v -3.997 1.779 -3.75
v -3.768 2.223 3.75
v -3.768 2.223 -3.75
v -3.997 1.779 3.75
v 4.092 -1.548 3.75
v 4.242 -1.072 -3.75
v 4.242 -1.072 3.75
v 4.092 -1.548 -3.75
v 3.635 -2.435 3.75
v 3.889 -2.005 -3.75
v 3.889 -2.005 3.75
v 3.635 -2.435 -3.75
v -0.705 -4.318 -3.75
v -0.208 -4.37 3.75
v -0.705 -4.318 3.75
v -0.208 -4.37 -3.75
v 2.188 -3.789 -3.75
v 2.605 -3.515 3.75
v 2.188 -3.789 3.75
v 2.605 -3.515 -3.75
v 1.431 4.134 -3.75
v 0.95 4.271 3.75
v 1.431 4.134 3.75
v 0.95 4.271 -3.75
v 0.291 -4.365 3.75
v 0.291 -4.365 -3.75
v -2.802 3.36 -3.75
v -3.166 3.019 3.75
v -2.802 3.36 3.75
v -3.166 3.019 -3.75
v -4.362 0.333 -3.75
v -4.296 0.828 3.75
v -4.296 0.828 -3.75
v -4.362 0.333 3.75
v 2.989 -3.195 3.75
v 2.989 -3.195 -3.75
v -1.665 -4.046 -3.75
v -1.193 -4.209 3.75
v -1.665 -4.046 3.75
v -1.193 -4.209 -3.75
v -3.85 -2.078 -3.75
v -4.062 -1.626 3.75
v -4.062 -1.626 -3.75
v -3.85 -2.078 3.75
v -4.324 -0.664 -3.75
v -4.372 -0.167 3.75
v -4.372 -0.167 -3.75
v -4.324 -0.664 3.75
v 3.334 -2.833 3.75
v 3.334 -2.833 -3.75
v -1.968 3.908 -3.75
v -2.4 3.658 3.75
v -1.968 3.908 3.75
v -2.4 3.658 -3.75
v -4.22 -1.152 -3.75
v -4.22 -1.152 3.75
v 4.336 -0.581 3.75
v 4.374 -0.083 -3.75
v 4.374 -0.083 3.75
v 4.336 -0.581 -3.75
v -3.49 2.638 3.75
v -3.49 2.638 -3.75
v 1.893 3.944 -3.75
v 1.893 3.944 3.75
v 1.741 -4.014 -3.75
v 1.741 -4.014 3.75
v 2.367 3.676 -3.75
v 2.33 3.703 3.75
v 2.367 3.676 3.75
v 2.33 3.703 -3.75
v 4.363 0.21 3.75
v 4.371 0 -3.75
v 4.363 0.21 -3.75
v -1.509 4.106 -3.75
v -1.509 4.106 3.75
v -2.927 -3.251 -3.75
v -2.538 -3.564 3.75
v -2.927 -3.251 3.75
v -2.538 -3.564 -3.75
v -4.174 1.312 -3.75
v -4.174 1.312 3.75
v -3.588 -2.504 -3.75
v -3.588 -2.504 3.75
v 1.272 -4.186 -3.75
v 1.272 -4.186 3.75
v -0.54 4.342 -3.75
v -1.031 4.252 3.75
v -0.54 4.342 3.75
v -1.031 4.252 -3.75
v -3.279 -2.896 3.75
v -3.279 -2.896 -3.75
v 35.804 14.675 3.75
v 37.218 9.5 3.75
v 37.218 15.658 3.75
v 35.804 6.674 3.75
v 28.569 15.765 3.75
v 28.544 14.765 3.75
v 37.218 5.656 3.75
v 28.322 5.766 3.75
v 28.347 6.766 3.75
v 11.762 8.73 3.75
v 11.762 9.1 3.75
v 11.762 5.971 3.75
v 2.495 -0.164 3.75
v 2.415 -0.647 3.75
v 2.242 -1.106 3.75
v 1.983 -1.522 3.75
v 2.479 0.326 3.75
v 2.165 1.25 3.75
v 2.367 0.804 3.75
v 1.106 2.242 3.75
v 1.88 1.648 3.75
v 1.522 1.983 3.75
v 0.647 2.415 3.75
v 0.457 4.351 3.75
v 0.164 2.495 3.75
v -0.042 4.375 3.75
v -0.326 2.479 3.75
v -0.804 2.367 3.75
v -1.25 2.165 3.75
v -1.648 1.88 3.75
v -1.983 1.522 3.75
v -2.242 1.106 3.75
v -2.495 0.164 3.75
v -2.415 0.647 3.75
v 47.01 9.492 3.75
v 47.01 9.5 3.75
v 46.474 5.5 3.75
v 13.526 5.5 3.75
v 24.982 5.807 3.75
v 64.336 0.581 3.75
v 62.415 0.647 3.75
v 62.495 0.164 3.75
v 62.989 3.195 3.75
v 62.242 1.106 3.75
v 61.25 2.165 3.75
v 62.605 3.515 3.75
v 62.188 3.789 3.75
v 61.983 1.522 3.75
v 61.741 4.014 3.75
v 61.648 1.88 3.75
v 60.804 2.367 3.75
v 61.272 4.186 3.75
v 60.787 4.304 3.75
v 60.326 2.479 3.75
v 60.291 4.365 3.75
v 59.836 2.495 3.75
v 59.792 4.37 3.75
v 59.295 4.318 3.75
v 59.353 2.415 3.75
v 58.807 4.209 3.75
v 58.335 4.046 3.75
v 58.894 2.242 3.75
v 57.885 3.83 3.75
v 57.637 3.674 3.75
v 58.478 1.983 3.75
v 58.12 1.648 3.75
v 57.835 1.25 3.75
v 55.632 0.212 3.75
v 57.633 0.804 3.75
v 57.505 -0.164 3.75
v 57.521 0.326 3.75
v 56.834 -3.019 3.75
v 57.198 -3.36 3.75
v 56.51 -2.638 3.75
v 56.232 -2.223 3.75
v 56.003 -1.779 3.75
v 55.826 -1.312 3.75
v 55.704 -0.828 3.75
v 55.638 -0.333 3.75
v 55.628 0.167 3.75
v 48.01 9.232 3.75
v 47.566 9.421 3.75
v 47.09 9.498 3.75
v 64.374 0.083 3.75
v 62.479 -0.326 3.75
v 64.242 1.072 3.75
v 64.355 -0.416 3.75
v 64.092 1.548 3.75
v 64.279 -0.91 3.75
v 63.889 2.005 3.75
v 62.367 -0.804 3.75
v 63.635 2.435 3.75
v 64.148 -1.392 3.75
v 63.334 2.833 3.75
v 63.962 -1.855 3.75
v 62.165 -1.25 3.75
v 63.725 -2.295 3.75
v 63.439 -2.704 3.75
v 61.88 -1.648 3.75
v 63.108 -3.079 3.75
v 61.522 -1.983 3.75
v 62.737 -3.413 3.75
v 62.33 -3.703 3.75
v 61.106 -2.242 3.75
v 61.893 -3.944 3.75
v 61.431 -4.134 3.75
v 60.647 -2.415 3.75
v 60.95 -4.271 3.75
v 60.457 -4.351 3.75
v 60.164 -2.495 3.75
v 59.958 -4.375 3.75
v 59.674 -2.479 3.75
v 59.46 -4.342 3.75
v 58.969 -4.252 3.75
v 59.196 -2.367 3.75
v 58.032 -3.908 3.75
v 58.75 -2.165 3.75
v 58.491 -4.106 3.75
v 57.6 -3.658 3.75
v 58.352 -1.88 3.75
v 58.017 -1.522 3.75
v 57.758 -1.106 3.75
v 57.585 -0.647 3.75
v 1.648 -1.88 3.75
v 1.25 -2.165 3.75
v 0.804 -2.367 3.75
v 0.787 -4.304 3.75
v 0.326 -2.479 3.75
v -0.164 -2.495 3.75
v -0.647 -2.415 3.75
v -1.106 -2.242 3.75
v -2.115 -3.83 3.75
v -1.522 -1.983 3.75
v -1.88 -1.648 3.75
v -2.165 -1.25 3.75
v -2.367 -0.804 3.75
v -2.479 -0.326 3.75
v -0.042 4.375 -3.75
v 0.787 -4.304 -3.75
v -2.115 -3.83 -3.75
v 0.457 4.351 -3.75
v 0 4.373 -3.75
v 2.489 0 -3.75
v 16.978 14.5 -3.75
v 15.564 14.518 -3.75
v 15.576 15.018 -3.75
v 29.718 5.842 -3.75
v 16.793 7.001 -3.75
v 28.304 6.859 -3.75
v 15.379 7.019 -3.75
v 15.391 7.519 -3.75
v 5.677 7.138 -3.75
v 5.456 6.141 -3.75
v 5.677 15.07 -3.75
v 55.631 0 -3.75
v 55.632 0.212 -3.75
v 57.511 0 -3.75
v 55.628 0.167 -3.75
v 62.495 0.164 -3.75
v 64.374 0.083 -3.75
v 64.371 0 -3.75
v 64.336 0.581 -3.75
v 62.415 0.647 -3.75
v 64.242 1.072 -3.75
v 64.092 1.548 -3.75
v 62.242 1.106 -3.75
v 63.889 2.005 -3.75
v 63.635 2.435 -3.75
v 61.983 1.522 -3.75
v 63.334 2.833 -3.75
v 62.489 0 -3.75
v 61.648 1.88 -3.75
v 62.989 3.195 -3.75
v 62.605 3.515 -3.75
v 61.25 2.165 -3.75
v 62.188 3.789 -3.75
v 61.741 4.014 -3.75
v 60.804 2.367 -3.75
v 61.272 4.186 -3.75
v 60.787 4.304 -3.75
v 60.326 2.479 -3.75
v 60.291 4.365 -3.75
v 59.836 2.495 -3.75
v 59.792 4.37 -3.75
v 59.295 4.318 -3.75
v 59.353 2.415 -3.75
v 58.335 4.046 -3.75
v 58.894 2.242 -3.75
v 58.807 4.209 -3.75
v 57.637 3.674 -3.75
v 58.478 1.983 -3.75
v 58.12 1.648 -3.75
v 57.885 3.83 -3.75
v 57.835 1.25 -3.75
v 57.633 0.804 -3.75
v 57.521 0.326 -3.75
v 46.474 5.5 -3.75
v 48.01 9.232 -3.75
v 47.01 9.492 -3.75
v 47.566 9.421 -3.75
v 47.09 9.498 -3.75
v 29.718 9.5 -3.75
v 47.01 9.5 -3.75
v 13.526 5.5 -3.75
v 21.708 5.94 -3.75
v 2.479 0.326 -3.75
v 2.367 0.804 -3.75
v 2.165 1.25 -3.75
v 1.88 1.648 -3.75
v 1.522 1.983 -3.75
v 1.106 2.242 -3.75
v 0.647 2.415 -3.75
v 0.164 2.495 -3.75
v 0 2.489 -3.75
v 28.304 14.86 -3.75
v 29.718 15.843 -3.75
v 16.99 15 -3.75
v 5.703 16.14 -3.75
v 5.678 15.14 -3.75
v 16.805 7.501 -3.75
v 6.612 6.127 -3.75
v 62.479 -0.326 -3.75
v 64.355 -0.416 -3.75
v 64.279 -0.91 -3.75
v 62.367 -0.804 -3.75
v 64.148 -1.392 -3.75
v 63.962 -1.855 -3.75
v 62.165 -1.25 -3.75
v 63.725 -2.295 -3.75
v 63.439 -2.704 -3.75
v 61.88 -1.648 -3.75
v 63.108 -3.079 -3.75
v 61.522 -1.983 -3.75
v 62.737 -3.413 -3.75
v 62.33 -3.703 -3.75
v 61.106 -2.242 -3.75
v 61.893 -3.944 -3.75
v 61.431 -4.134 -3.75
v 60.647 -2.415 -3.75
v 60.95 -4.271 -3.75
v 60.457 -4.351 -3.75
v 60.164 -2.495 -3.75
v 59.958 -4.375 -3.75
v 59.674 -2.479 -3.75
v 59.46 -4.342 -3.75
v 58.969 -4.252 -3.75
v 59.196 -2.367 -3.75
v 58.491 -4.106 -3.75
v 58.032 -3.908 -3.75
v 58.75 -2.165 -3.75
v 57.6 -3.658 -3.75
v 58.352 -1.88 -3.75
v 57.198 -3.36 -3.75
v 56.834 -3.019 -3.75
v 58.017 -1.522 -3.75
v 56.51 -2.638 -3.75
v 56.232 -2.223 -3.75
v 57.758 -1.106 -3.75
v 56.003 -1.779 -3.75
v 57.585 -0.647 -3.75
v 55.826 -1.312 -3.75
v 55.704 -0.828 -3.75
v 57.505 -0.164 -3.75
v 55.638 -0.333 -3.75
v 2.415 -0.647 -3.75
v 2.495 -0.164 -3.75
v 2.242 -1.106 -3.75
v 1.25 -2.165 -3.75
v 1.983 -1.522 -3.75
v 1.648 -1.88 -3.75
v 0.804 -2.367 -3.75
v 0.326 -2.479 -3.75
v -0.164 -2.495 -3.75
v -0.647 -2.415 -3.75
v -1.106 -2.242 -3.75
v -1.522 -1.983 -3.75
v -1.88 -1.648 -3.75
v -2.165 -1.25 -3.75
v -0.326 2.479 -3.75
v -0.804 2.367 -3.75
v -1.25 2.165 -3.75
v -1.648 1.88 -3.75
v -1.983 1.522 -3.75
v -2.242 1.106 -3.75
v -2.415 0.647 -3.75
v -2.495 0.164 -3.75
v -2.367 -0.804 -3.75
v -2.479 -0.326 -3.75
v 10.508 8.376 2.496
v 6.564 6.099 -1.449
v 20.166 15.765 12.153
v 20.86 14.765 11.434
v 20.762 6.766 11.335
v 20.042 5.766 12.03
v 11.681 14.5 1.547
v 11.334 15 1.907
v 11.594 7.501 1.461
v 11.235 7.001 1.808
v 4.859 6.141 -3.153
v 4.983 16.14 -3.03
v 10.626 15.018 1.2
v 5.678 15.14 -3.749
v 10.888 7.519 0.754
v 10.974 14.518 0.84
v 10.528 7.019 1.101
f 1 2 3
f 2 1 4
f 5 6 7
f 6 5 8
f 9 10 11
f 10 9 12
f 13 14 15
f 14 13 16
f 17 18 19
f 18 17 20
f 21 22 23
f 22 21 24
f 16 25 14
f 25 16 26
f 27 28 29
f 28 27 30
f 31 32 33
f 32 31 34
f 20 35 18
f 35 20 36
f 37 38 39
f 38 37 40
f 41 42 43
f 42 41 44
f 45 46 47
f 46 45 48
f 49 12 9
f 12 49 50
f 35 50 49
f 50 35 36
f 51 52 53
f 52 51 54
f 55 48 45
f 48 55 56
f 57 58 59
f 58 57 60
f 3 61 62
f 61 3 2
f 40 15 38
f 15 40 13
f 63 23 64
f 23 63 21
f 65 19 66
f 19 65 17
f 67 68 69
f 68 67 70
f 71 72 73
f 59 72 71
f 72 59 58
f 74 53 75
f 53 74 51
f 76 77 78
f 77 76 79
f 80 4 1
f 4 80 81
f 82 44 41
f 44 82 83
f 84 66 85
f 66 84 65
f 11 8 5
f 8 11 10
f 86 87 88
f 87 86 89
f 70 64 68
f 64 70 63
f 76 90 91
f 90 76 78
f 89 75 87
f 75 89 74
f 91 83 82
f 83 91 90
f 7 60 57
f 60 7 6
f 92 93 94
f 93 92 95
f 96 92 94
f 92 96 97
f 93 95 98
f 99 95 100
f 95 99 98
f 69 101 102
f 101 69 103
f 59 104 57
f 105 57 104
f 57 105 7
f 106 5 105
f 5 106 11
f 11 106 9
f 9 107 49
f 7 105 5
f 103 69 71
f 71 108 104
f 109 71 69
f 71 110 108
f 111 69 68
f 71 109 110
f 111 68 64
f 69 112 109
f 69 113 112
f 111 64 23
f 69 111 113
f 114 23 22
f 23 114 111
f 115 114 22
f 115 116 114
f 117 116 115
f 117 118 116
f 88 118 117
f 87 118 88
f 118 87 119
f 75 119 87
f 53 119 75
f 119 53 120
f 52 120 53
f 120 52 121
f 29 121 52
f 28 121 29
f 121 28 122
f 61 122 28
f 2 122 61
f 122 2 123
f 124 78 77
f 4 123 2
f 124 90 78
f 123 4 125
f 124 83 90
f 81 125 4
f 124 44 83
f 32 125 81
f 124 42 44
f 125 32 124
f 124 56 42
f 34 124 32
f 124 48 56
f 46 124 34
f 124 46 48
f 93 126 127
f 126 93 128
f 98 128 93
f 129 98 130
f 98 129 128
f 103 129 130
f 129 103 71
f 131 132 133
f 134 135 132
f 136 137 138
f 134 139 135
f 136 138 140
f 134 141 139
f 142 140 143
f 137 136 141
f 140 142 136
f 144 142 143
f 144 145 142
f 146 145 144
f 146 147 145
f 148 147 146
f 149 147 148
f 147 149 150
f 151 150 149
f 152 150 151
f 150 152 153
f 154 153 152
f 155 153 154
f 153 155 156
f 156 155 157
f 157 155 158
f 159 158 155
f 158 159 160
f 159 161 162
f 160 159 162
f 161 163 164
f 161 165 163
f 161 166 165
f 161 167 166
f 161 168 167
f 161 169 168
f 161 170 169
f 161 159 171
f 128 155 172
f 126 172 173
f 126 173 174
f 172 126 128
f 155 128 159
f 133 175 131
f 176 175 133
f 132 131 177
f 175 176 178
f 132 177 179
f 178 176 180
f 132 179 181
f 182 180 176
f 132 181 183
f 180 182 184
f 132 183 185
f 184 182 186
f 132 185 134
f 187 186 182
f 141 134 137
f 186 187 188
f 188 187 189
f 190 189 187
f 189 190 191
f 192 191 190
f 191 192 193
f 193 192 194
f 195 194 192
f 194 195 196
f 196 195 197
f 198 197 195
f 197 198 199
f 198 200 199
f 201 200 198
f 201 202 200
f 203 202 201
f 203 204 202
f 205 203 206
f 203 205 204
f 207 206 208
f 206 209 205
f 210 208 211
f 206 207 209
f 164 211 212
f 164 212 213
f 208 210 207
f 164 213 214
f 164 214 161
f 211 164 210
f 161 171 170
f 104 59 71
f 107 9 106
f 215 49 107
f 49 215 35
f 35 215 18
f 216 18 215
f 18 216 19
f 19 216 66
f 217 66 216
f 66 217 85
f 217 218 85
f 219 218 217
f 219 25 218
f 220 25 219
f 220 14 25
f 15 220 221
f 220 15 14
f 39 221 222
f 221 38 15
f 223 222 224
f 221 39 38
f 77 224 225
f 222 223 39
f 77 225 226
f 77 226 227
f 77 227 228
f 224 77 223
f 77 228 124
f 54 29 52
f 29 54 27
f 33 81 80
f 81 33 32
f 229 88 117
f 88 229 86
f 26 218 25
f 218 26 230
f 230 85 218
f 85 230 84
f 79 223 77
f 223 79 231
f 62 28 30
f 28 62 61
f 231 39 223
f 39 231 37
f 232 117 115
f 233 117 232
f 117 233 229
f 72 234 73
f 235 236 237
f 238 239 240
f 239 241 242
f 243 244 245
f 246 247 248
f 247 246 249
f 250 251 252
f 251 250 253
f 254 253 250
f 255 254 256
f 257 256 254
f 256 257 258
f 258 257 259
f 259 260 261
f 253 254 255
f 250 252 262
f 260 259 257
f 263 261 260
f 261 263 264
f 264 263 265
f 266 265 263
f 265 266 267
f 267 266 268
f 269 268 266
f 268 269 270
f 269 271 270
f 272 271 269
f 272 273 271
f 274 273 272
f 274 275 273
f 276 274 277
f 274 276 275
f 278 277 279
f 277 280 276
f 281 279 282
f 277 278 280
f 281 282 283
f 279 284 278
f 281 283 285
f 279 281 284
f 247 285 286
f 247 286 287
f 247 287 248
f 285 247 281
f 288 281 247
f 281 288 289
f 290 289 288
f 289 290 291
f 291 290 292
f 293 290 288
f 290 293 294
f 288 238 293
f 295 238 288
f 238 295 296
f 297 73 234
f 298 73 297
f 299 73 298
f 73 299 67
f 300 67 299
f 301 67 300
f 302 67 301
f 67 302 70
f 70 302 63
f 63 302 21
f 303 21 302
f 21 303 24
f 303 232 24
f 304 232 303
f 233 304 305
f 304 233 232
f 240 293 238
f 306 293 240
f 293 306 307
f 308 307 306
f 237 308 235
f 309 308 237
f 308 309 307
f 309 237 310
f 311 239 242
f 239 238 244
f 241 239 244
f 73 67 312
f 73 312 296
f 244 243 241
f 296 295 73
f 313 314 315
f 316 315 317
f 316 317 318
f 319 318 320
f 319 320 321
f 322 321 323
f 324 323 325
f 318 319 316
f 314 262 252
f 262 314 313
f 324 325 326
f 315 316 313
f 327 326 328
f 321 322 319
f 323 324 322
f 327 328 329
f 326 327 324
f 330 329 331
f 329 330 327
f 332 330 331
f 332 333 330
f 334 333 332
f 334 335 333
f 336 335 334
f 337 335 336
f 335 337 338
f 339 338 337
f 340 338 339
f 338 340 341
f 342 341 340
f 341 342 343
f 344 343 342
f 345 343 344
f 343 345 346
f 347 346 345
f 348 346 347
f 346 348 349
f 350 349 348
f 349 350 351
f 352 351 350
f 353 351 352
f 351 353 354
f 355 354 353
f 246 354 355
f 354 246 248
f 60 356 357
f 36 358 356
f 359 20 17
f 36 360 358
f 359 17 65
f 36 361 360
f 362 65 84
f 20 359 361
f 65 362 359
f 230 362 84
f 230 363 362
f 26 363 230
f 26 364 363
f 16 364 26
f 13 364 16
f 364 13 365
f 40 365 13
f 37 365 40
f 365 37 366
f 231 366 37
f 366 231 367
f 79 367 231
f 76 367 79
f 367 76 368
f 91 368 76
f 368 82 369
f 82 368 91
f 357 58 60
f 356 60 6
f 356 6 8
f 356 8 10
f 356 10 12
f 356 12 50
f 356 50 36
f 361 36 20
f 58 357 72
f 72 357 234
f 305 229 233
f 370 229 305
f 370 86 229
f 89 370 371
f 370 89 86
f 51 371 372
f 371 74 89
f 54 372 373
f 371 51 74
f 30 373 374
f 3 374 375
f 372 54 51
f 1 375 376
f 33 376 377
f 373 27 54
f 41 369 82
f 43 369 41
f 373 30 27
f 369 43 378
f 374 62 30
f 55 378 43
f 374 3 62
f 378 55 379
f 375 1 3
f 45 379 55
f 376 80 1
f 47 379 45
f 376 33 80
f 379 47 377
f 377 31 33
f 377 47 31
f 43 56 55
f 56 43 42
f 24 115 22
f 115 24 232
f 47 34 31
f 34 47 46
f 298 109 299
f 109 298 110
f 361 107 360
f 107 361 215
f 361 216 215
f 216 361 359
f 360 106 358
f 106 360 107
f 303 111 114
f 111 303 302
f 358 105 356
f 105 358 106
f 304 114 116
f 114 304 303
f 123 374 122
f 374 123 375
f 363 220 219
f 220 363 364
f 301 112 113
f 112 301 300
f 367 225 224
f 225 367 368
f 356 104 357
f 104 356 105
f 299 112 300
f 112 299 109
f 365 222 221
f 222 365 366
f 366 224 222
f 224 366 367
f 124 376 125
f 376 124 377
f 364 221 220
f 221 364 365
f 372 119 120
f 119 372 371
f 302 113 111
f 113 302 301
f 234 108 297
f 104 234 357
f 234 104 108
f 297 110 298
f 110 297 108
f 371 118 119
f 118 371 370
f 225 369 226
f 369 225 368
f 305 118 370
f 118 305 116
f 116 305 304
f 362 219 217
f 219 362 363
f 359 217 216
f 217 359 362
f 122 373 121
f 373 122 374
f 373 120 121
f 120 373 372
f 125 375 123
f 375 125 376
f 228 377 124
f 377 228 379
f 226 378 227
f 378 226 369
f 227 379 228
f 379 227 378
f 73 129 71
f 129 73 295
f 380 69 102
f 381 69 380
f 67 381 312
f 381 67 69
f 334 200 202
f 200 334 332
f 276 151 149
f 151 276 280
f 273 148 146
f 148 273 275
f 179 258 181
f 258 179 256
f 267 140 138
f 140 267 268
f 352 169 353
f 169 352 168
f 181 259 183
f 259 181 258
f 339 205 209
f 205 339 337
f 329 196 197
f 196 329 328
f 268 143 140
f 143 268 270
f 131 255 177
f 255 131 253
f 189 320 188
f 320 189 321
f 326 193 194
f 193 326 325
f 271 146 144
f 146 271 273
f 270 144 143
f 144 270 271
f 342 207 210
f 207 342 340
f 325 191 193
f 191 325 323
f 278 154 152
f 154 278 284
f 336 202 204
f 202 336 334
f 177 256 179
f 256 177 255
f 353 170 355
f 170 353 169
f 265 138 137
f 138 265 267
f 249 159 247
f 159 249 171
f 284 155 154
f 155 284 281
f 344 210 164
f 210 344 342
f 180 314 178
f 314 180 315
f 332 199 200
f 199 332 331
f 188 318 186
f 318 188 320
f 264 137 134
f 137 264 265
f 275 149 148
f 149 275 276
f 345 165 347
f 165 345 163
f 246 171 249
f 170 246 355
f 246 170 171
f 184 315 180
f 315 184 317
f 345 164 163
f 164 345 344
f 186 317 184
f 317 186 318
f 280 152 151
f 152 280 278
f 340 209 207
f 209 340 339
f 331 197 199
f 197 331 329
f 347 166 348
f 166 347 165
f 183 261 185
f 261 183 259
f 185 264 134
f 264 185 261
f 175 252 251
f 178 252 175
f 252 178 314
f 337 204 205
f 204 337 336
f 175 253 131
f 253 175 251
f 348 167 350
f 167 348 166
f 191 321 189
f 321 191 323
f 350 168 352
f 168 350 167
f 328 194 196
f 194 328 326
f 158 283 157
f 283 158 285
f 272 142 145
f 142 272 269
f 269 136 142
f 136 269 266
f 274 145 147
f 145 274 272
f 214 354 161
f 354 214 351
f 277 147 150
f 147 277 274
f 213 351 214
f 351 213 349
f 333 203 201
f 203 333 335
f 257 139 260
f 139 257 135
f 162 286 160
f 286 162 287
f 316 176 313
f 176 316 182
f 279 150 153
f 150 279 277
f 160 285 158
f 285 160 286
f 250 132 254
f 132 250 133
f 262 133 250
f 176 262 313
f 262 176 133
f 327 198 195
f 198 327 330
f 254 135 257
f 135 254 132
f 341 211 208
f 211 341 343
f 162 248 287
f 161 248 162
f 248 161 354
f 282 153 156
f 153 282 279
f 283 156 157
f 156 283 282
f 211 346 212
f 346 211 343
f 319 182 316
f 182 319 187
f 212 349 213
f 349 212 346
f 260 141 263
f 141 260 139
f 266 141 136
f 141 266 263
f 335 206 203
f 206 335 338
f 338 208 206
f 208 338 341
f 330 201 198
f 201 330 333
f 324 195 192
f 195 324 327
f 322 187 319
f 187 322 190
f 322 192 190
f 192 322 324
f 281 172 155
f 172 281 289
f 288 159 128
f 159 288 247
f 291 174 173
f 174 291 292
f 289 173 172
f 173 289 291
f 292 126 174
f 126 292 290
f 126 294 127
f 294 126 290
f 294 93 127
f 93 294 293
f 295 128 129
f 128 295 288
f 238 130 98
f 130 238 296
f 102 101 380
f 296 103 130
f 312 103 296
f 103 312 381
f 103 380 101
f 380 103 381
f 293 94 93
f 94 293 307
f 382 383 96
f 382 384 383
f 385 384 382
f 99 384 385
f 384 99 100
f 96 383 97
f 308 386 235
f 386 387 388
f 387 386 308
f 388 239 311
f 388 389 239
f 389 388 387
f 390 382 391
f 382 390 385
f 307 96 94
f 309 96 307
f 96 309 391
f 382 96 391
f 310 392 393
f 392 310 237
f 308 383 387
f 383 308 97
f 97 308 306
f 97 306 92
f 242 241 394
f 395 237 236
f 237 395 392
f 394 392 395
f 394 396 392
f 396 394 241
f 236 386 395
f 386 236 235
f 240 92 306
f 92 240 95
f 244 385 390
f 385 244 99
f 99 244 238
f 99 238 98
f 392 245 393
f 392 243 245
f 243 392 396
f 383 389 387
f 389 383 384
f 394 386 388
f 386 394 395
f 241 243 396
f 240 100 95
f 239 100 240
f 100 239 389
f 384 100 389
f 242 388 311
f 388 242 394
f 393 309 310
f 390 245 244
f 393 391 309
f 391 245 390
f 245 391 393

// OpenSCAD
// file: bracket.scad
standoff_spacing = 60;
standoff_width = 5;
standoff_height = standoff_width * 1.5;

arm_angle = 30;
arm_length = 15;
arm_height = standoff_height;
arm_width = standoff_width / 5 * 4;

xt60_bracket_thickness = 1;

arm_deg = 90 - arm_angle;
bridge_length = standoff_spacing - (cos(arm_angle) * arm_length) * 2;

$fs = $preview ? 1 : 0.5;
$fa = $preview ? 10 : 5;

anti_warp = .15;
filament_width = 1.75;

function anti_warp_widen(v) = v + (filament_width * anti_warp) * 2;
function anti_warp_shrink(v) = v - (filament_width * anti_warp) * 2;

module joint(height, diameter) {
	assert(height > 0 && diameter > 0, "invalid args");
	cylinder(h = height, d = diameter, center = true);
}

module standoff_hole(height, diameter) {
	joint(height, diameter);
}


module standoff() {
	difference() {
		standoff_hole(standoff_height, standoff_width * 1.75);
		standoff_hole(standoff_height, standoff_width);
	}
}

module standoff_arm() {
	standoff();
	difference() {
		translate([0, arm_length / 2]) cube([arm_width, arm_length, arm_height], center = true);
		standoff_hole(standoff_height, standoff_width);
	}
	translate([0, arm_length]) joint(arm_height, arm_width);
}

module xt60_bracket(gen_claws = true) {
	xt60_height = anti_warp_shrink(14);
	xt60_length = 16;
	xt60_width = 8;
	xt60_stub_width = 0.5;

	translate([-(xt60_bracket_thickness + xt60_length / 2), 0]) {
		cube([xt60_length + xt60_bracket_thickness * 2, xt60_bracket_thickness, xt60_height]);
		if (gen_claws) translate([0, -xt60_stub_width, -xt60_bracket_thickness]) cube([xt60_length + xt60_bracket_thickness * 2, xt60_stub_width + xt60_bracket_thickness, xt60_bracket_thickness]);
	}

	translate([xt60_length / 2, -(xt60_width + xt60_bracket_thickness)]) {
		cube([xt60_bracket_thickness, xt60_width + xt60_bracket_thickness * 2, xt60_height]);
		if (gen_claws) translate([-xt60_stub_width, 0, -xt60_bracket_thickness]) cube([xt60_stub_width + xt60_bracket_thickness, xt60_width + xt60_bracket_thickness * 2, xt60_bracket_thickness]);
	}

	translate([-(xt60_length / 2 + xt60_bracket_thickness), -(xt60_width + xt60_bracket_thickness)]) {
		cube([xt60_bracket_thickness, xt60_width + xt60_bracket_thickness * 2, xt60_height]);
		if (gen_claws) translate([0, 0, -xt60_bracket_thickness]) cube([xt60_stub_width + xt60_bracket_thickness, xt60_width + xt60_bracket_thickness * 2, xt60_bracket_thickness]);
	}

	translate([-(xt60_length / 2 + xt60_bracket_thickness), -(xt60_width + xt60_bracket_thickness)]) {
		cube([xt60_length + xt60_bracket_thickness * 2, xt60_bracket_thickness, xt60_height]);
		if (gen_claws) translate([0, 0, -xt60_bracket_thickness]) cube([xt60_length + xt60_bracket_thickness * 2, xt60_stub_width + xt60_bracket_thickness, xt60_bracket_thickness]);
	}
}

module bridge() {
	translate([bridge_length / 2, 0]) cube([bridge_length, arm_width, arm_height], center = true);
}

module bracket() {
	rotate([0, 0, -arm_deg]) standoff_arm();
	translate([standoff_spacing, 0]) rotate([0, 0, arm_deg]) standoff_arm();
	translate([cos(arm_angle) * arm_length, sin(arm_angle) * arm_length]) bridge();
}
// main file
include <bracket.scad>

xt60_angle = 45;

xt60_deg = 90 - xt60_angle;

module main() {
	difference() {
		bracket();
		translate([cos(arm_angle) * arm_length + arm_width,
			sin(arm_angle) * arm_length * 2,
			 -arm_height / 2]) {
			rotate([1, xt60_deg]) hull() {
				scale([1, 1, 2]) translate([0, 0, arm_width]) hull() xt60_bracket();
				scale([1, 1, -2]) translate([0, 0, -arm_width * 2]) hull() xt60_bracket();
			}
		}
	}

	translate([cos(arm_angle) * arm_length + arm_width,
		sin(arm_angle) * arm_length * 2,
		-arm_height / 2]) { 

		rotate([1, xt60_deg]) {
			xt60_bracket();
			translate([0, 0, -arm_width * 2]) xt60_bracket(false);
		}
	}

	difference() {
		translate([cos(arm_angle) * arm_length + arm_width,
			sin(arm_angle) * arm_length * 2,
			-arm_height / 2]) rotate([1, xt60_deg]) scale([1, 1, 2]) translate([0, 0, arm_width]) xt60_bracket(false);
		translate([0, 0, arm_height / 2]) cube([100, 100, 100]);
	}
		
}

difference() {
	main();
	translate([0, 0, -arm_height / 2]) rotate([270, 0]) cube([100, 100, 100]);
}
